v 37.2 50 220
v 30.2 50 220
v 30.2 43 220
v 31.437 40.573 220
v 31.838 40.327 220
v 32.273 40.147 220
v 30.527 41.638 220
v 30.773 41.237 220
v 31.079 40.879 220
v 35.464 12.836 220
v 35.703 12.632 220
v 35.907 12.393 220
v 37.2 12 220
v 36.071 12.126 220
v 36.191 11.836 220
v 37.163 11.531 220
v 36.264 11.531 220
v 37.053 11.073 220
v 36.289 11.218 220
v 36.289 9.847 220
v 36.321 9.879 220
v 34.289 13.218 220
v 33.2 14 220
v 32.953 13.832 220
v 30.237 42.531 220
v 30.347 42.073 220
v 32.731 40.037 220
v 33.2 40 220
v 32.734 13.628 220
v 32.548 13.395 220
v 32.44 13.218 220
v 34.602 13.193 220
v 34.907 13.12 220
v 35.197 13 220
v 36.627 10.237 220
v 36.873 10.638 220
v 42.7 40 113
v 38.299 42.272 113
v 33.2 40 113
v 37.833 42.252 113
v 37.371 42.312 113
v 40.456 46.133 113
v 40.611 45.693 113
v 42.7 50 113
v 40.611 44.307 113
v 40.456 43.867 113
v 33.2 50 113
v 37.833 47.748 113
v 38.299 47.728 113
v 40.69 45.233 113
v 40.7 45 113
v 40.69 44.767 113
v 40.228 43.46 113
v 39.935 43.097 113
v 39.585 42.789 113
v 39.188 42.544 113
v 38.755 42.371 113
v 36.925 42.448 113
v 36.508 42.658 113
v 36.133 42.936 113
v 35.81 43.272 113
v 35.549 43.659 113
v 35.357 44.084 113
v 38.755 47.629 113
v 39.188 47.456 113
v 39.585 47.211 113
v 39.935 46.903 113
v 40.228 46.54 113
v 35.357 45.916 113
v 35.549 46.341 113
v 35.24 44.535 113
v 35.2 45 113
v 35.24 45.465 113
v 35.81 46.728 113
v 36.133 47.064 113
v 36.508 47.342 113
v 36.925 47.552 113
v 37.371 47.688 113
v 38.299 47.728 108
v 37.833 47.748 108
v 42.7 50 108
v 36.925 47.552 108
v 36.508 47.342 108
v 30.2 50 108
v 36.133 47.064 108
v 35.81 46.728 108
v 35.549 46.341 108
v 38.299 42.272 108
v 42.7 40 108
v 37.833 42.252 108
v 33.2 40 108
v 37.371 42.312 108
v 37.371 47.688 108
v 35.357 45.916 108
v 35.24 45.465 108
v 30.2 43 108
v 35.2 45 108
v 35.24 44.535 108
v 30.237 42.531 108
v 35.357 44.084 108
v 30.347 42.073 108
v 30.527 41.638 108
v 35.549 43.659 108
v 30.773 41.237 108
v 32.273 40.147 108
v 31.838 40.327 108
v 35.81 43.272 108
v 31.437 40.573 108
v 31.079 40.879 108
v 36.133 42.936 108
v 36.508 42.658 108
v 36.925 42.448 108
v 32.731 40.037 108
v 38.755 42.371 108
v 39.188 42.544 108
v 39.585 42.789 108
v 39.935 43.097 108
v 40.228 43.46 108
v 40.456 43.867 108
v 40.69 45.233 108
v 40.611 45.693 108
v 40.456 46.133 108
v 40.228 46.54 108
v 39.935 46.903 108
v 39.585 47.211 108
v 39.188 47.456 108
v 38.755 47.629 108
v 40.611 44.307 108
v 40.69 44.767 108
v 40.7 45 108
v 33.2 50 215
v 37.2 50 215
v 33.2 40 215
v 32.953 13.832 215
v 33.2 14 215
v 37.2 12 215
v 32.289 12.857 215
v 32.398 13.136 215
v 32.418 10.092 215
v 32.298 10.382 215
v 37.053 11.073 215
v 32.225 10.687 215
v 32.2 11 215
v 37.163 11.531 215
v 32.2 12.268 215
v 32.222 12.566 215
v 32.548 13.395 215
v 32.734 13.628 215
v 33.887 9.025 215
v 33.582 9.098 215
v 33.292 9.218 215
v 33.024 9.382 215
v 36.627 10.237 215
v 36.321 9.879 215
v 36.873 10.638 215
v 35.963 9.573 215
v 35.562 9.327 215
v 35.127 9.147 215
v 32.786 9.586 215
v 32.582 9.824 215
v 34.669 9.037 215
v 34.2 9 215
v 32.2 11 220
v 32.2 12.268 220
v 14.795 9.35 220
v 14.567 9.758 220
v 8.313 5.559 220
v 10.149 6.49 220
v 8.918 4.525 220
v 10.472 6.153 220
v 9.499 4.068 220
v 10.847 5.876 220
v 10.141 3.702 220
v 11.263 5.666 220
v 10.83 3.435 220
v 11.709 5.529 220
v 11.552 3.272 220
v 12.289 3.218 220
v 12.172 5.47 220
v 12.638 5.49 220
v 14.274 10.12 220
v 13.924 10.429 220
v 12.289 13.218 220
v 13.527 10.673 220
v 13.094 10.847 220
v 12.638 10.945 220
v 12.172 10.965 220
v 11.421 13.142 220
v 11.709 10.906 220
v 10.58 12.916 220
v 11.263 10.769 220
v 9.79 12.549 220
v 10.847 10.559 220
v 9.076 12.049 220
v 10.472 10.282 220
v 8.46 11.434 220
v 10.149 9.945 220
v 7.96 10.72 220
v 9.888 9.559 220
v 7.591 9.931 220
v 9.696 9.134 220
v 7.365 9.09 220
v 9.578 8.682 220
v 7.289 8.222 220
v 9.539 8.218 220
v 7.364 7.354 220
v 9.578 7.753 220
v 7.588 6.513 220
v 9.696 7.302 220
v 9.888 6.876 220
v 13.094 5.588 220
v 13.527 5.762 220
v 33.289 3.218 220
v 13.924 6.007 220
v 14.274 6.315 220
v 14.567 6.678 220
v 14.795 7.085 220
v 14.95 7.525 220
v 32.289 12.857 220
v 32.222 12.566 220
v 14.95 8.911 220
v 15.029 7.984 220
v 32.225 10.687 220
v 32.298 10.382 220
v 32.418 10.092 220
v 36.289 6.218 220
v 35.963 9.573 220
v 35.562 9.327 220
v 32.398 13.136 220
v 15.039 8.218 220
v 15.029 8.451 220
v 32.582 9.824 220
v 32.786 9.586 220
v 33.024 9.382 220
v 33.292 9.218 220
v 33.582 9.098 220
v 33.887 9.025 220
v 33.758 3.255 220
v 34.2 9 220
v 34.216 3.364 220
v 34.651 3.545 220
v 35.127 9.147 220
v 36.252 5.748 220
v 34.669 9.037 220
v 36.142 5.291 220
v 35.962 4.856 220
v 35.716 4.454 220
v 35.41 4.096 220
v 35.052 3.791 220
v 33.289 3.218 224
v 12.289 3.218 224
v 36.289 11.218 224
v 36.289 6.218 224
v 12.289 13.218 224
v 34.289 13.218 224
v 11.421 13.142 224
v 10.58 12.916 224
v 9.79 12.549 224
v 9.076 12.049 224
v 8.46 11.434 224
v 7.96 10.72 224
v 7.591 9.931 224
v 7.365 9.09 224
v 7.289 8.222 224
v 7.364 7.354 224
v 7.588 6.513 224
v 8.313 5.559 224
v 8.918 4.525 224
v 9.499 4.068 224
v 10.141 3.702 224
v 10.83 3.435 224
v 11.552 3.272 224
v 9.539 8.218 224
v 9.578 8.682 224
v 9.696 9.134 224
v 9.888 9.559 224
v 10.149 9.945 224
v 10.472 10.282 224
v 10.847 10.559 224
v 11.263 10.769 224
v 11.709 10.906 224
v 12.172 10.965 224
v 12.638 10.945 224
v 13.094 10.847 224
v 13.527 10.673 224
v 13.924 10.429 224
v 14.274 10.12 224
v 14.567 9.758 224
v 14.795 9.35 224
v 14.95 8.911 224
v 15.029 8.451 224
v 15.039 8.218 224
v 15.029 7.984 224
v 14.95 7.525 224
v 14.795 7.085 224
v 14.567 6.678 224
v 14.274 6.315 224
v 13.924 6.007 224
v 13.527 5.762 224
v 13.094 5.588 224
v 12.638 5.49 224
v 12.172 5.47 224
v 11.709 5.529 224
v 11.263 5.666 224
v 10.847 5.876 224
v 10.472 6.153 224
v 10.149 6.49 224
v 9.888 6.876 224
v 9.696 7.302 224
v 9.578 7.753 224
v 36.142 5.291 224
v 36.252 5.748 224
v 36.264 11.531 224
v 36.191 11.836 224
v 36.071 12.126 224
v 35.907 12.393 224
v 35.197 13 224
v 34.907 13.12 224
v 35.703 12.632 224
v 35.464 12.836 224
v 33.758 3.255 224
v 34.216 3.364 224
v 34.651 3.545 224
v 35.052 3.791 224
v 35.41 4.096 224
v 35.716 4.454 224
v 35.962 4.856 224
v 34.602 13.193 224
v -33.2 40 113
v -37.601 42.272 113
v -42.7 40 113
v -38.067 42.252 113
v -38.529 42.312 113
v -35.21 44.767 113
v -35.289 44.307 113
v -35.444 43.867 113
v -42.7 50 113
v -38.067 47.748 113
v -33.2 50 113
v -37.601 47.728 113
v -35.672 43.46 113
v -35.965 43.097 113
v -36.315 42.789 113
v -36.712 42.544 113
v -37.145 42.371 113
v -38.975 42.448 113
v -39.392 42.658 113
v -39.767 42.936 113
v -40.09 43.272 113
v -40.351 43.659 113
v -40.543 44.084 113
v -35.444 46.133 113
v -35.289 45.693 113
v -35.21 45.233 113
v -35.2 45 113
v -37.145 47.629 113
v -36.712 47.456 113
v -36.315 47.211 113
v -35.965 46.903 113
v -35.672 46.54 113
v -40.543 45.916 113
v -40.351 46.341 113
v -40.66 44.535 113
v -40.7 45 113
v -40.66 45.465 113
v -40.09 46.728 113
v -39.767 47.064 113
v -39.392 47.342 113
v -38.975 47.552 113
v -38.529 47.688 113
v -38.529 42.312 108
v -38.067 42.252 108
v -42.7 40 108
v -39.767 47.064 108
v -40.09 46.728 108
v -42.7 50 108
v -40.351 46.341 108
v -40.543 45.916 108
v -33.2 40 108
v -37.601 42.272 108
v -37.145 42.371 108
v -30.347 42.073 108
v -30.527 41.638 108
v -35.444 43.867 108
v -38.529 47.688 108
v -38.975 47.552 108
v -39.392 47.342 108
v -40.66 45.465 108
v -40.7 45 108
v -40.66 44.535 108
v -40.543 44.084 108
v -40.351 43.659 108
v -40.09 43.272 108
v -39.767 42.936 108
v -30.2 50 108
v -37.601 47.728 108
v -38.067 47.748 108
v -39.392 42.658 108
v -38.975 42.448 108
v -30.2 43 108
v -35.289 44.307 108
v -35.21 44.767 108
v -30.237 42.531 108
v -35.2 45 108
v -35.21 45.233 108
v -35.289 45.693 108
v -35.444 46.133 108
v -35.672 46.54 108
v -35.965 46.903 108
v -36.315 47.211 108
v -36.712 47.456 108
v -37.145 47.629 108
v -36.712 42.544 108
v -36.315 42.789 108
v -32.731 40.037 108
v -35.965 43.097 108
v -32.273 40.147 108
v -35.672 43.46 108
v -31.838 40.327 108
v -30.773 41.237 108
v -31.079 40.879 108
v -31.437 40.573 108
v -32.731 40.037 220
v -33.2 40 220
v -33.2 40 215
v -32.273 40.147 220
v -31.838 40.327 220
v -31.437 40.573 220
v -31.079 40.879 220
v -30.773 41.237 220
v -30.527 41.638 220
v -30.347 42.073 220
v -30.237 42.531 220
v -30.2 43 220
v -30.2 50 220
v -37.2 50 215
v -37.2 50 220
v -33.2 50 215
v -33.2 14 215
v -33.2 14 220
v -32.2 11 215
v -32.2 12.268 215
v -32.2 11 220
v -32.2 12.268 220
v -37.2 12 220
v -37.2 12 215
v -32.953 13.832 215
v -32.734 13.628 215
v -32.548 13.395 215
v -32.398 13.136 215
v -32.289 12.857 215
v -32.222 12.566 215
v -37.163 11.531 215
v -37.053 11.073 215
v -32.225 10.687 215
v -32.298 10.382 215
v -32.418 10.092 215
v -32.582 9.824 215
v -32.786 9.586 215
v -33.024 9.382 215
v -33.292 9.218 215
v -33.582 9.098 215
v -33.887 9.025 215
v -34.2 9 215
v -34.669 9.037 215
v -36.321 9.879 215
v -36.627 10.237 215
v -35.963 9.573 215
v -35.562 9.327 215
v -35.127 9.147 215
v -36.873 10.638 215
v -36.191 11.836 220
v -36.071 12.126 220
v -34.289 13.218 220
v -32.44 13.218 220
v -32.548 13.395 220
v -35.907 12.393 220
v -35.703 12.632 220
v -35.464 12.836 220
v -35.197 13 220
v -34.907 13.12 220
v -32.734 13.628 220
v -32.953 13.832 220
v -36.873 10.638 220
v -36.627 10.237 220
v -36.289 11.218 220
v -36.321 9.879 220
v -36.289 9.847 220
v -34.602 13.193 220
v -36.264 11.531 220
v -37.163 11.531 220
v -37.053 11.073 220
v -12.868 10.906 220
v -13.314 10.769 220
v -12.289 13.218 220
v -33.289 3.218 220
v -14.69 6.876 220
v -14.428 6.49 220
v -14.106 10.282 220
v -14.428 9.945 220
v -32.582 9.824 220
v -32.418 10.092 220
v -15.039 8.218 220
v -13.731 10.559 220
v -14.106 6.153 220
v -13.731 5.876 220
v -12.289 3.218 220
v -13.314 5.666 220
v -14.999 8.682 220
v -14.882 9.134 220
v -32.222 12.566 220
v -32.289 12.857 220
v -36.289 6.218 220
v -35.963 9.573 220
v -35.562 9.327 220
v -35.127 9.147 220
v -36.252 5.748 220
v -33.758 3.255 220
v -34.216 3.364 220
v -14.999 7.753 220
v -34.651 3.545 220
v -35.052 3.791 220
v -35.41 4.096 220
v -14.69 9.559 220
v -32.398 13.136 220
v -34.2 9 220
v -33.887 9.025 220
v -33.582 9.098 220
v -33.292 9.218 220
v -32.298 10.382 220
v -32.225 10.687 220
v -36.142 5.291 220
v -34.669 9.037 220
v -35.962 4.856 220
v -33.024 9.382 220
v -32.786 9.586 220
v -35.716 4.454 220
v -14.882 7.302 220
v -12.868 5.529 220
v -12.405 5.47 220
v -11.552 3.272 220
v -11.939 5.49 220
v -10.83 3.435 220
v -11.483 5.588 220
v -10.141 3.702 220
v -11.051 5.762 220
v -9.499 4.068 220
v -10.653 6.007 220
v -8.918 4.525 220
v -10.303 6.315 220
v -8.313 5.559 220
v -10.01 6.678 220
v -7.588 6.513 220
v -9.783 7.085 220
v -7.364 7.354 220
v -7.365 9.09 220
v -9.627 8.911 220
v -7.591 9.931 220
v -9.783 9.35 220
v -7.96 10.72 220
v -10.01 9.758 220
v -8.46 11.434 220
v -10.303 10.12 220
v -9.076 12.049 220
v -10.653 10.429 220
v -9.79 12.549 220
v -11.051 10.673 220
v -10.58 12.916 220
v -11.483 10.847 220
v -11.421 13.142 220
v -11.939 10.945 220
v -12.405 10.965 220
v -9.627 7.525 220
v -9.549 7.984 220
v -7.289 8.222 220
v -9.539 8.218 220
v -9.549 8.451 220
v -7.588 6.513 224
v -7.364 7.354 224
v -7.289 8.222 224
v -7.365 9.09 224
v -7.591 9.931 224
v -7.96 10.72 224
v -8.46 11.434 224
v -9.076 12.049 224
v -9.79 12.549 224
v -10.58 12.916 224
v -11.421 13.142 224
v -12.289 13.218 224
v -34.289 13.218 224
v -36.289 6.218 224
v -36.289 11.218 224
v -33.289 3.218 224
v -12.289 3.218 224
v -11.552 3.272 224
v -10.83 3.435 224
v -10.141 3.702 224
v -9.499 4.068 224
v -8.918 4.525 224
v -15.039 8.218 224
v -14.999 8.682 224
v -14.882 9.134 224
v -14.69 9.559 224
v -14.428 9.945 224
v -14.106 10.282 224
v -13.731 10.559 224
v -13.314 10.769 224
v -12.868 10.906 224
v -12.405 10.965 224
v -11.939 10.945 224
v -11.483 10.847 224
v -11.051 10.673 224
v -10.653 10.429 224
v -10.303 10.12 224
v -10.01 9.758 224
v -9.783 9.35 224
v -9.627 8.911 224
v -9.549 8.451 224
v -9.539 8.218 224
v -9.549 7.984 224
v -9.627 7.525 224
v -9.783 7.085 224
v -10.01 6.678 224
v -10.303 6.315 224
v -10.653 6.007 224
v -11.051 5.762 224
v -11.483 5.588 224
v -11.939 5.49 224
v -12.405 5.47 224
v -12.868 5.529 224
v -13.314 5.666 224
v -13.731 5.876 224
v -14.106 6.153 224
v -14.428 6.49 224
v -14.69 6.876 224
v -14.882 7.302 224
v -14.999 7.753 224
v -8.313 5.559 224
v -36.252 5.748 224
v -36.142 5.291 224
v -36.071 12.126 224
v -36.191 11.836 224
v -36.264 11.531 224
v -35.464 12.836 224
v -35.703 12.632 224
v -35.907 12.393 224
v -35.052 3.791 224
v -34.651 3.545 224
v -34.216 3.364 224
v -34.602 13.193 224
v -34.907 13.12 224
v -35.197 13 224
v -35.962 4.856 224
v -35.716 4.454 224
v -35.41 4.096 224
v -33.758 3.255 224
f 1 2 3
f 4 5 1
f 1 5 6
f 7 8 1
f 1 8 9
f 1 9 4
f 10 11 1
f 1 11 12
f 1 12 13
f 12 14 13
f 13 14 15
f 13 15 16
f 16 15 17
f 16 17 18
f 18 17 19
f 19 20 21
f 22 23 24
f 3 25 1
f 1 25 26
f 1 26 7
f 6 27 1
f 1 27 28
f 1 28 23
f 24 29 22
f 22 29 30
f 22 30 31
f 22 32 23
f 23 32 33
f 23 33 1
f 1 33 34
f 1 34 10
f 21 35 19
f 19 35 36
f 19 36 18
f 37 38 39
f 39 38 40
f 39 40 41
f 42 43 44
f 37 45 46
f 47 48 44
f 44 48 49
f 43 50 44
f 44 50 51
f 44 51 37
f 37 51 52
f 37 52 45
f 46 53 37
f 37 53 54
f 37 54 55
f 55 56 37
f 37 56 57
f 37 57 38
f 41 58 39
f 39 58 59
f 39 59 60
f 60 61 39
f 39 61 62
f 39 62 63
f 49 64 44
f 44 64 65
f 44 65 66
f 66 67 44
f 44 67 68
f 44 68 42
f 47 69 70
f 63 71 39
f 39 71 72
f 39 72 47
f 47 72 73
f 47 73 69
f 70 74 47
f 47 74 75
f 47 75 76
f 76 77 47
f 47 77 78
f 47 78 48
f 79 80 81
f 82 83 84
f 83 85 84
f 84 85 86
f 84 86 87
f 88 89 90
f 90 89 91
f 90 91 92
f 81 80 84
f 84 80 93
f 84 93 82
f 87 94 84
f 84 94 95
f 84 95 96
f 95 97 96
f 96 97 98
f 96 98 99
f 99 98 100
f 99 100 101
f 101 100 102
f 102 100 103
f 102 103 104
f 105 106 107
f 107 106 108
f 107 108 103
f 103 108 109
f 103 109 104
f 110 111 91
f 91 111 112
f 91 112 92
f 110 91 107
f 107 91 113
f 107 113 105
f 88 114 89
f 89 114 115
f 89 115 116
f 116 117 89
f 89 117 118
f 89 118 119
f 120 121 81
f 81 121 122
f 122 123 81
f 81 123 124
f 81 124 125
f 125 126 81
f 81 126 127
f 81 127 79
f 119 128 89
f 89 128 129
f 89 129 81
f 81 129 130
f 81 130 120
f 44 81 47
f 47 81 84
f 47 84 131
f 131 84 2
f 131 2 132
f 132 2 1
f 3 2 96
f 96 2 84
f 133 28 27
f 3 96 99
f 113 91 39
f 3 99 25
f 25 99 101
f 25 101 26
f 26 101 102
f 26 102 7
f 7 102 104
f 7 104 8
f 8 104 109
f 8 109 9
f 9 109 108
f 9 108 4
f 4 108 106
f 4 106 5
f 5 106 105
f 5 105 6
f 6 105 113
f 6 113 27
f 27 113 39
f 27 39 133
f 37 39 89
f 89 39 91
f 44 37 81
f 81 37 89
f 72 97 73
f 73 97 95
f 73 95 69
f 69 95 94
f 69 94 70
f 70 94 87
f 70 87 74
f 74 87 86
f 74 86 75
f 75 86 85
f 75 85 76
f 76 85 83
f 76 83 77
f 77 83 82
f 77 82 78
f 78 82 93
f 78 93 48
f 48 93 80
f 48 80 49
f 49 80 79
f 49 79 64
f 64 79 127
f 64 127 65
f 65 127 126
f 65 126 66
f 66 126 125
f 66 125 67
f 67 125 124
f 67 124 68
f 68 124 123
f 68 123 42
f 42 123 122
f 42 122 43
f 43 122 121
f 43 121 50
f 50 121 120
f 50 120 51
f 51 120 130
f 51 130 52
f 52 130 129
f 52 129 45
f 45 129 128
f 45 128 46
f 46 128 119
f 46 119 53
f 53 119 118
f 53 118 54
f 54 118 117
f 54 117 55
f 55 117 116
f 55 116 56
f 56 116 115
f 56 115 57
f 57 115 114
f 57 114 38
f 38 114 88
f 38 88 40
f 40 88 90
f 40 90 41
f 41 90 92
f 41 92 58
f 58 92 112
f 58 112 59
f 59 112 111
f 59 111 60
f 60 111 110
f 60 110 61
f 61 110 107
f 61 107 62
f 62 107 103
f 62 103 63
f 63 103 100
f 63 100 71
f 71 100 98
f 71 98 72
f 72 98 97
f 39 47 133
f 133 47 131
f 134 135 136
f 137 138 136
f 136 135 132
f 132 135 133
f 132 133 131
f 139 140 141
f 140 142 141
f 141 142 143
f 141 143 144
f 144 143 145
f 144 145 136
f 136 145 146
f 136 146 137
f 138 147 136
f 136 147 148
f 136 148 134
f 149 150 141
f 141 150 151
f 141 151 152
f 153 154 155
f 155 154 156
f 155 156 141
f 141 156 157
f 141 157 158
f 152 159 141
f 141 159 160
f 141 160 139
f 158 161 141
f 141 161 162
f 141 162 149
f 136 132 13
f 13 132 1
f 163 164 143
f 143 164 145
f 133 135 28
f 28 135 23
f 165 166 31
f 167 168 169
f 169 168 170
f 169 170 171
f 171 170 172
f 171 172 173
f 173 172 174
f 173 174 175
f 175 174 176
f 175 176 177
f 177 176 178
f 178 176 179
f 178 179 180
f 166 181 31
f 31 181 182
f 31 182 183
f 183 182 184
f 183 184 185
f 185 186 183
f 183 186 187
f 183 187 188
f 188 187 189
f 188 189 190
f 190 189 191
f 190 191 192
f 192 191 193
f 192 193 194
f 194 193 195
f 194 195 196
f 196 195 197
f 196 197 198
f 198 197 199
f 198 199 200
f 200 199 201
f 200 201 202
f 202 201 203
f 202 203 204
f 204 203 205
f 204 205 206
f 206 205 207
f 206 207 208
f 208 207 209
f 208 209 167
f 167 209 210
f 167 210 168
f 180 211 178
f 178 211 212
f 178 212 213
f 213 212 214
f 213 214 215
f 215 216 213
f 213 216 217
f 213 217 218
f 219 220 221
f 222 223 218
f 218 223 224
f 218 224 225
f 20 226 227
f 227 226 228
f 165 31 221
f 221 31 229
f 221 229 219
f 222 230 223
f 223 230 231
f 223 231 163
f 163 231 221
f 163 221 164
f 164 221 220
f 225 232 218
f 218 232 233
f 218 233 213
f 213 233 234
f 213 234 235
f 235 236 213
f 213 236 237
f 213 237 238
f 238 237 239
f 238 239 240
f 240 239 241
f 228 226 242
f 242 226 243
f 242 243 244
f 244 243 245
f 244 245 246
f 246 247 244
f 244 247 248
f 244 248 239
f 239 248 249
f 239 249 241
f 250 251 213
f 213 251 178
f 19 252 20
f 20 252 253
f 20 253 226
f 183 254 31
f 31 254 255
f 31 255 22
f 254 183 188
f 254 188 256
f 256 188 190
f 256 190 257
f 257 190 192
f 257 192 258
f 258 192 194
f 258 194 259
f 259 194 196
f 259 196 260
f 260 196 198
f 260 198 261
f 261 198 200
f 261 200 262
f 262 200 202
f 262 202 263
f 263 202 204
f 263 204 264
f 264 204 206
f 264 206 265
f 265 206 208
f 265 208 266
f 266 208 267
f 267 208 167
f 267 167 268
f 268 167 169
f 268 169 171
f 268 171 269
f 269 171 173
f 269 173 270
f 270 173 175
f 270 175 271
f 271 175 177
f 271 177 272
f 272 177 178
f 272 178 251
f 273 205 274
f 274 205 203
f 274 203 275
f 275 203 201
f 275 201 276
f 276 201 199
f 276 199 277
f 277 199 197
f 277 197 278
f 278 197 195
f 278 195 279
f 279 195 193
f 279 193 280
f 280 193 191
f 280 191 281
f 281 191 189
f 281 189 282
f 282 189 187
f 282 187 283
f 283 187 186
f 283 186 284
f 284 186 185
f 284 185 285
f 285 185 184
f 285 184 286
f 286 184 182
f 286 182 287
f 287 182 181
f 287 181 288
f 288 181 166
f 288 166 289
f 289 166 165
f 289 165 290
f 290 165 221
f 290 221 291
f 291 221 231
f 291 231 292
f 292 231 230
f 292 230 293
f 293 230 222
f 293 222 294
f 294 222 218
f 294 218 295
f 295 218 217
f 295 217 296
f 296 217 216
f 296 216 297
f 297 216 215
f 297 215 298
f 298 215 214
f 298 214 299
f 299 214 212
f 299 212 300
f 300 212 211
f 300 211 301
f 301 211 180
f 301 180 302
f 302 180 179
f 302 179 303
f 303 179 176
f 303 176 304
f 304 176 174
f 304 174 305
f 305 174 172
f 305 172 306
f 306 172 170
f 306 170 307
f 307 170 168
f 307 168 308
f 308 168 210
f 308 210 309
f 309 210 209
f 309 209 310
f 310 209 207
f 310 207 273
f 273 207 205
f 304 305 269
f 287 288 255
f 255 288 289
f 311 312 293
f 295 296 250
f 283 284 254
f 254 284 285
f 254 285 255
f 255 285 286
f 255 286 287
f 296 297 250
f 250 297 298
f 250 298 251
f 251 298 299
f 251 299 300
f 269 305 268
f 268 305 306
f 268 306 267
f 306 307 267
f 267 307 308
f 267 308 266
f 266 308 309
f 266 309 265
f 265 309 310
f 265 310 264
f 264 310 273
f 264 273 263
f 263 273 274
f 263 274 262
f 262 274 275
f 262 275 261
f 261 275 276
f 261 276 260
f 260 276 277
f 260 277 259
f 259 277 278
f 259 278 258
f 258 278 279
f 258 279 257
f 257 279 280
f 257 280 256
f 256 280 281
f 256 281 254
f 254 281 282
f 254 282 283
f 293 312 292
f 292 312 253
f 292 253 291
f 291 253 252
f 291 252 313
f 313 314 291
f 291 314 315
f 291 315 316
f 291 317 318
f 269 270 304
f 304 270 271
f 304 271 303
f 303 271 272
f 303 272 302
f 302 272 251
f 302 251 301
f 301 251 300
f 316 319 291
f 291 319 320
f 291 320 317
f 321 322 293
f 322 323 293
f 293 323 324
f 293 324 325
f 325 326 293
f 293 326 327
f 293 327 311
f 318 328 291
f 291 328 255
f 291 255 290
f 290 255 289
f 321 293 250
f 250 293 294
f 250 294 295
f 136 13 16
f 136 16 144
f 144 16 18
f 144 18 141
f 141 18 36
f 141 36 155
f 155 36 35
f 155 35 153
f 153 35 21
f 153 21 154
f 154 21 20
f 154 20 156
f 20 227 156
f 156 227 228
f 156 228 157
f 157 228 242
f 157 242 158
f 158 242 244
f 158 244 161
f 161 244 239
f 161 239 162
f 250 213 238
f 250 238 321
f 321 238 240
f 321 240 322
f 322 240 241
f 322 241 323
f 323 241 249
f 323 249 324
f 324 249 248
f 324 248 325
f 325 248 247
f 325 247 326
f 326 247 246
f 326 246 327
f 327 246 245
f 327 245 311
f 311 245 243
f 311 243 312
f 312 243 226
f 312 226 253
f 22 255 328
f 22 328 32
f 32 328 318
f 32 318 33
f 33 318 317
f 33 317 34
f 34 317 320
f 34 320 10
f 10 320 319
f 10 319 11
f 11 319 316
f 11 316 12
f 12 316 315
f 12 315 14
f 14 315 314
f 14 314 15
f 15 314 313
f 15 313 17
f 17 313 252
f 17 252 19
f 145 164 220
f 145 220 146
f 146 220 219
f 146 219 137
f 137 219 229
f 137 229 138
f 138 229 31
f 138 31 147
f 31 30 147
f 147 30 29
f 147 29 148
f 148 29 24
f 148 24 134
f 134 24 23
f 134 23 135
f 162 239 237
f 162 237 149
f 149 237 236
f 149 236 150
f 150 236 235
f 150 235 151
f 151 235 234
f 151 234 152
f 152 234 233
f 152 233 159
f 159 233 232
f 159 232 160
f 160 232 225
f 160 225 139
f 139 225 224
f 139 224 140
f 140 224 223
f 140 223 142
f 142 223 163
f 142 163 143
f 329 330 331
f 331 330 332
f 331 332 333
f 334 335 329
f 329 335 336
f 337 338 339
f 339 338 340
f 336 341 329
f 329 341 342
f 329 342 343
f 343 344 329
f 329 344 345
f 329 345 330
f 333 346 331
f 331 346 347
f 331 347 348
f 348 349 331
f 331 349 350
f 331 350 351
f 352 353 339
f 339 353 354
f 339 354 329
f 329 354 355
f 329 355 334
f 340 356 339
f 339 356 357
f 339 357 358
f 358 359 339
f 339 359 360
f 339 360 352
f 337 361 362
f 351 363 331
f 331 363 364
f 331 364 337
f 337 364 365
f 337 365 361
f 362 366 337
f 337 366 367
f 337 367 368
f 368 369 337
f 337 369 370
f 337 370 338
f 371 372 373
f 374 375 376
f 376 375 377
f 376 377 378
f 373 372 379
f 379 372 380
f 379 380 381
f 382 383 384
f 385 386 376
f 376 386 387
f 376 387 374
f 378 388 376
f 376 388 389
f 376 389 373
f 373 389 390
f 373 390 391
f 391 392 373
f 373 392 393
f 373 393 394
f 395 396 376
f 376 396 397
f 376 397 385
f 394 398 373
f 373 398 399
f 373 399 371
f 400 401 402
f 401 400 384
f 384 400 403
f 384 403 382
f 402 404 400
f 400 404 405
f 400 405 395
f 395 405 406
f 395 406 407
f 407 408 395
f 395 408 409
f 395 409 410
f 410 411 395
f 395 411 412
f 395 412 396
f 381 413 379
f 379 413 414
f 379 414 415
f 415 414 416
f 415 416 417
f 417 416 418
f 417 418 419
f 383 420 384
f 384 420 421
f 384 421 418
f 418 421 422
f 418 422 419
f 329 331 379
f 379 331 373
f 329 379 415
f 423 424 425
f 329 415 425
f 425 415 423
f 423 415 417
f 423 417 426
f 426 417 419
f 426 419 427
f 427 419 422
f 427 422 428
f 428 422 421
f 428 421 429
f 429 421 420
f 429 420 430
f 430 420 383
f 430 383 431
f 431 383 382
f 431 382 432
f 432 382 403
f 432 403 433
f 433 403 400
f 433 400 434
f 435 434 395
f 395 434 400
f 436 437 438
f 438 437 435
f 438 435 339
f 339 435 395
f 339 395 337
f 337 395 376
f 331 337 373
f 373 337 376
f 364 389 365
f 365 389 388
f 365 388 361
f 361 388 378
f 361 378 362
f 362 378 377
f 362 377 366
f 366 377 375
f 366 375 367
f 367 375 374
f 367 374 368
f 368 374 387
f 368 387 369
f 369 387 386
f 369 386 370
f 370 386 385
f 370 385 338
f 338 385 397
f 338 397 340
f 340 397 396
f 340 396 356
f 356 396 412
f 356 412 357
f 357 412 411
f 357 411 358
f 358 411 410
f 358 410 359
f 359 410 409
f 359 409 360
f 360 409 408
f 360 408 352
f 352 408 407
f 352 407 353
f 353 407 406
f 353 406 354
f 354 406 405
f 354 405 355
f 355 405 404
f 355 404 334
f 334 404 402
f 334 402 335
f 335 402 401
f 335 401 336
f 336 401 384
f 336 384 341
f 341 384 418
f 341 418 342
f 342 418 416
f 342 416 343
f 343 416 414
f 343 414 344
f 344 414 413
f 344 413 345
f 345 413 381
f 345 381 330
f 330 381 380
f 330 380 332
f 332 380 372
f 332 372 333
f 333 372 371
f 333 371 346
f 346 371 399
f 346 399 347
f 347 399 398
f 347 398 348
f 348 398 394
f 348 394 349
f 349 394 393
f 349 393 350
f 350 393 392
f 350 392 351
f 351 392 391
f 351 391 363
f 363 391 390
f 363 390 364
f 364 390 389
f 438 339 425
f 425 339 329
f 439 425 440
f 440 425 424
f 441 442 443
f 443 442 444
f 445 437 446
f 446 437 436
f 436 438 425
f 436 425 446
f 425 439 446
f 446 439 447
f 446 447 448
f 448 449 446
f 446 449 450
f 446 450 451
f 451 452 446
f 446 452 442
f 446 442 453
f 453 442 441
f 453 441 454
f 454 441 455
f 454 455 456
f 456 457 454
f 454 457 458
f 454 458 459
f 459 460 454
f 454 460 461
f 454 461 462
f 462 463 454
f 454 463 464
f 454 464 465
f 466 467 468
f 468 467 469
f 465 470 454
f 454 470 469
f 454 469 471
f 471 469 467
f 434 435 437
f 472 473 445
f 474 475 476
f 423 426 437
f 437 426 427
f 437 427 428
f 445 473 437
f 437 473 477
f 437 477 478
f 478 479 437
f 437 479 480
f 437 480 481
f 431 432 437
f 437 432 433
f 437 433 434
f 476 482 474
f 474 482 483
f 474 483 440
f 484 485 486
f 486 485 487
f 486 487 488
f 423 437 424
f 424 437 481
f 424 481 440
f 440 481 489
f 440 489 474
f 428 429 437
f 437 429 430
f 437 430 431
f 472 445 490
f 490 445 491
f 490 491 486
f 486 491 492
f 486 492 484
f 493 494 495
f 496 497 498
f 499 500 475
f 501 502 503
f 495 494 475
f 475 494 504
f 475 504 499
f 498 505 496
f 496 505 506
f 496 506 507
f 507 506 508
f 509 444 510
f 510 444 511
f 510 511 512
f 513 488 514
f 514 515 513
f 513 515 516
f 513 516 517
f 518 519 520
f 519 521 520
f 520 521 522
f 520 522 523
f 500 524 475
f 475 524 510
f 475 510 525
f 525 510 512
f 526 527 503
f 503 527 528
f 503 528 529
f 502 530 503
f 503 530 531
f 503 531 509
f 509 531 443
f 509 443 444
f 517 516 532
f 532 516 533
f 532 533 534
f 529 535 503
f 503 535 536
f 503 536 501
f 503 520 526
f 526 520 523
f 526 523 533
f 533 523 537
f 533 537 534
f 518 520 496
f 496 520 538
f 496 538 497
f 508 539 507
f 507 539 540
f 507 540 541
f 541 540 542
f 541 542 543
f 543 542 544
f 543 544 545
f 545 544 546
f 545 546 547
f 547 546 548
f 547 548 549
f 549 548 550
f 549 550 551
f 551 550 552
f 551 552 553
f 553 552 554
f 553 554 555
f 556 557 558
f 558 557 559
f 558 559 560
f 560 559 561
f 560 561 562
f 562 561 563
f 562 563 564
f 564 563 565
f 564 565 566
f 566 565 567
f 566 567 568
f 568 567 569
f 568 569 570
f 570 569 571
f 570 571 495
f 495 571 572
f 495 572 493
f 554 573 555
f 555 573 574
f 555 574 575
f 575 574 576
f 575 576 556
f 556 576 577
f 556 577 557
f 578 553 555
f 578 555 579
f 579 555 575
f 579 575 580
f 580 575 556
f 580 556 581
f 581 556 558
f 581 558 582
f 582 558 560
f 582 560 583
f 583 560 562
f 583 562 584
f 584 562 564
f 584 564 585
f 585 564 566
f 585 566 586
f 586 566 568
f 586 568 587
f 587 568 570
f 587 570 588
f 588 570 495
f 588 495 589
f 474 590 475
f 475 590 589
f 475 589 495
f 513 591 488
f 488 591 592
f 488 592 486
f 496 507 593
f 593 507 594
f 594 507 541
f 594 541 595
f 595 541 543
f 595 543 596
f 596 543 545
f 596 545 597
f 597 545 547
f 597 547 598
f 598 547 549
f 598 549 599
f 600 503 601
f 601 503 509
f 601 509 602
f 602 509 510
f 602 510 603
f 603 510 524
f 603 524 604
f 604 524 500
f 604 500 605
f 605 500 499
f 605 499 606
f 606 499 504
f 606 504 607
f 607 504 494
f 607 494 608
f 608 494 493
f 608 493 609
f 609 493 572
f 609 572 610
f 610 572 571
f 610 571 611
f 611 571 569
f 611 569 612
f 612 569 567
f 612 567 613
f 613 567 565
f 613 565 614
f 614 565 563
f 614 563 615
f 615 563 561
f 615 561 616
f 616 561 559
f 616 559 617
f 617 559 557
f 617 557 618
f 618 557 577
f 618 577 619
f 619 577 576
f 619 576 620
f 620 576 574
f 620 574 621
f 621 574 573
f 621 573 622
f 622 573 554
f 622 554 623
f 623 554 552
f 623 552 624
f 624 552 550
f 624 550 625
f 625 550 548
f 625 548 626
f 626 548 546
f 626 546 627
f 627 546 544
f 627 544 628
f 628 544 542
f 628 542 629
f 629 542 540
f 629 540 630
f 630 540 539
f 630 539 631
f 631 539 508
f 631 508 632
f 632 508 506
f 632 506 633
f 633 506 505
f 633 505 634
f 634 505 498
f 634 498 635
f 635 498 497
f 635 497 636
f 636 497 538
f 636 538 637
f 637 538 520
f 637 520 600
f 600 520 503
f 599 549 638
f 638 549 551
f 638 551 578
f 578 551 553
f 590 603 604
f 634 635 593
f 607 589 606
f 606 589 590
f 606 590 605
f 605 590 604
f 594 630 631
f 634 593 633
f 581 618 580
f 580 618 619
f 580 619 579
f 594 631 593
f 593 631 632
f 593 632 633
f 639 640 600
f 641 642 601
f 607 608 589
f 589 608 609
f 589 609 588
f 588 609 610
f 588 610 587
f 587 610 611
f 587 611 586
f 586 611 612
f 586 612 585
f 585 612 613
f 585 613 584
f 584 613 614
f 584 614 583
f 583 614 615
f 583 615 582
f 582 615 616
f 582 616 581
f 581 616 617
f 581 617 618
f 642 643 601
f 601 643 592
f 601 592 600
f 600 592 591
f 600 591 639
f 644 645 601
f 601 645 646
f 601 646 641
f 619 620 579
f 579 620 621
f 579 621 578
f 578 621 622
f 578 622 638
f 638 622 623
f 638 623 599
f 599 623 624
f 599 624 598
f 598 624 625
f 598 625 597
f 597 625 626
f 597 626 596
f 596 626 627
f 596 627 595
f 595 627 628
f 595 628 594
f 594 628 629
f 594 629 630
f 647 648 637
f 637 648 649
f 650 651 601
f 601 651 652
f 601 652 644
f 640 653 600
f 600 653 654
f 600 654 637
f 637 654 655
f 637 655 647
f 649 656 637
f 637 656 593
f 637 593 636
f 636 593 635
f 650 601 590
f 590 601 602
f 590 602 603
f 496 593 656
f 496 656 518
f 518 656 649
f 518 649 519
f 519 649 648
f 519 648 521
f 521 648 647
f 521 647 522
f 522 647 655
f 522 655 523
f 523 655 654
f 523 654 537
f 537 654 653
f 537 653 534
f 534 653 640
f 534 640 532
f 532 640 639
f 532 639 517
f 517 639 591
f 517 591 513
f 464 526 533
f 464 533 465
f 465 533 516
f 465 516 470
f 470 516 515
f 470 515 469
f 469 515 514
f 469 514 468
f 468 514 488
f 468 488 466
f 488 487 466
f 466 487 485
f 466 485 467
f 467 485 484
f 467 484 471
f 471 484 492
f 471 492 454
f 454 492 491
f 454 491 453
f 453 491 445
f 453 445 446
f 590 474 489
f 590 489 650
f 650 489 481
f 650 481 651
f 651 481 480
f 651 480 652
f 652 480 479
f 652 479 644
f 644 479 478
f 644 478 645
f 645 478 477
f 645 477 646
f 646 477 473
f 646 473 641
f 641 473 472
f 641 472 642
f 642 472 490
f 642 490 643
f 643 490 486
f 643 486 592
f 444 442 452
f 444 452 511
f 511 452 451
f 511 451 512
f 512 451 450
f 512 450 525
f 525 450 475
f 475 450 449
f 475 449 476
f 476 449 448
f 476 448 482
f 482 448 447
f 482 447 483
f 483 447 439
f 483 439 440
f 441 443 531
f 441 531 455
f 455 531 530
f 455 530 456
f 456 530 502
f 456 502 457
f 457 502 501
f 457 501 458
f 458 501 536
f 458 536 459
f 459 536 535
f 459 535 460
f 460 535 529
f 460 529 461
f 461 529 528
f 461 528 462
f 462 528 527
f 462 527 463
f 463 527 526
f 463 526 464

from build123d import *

# Parameters (mm, degrees)
SKETCH1_R               = 2.75
BOSS_EXTRUDE1_DEPTH     = 5
BOSS_EXTRUDE1_2_DEPTH   = 5
BOSS_EXTRUDE2_DEPTH     = 5
BOSS_EXTRUDE2_2_DEPTH   = 5
BOSS_EXTRUDE3_DEPTH     = 102
SKETCH4_W               = 5.5
SKETCH4_H               = 10
CUT_EXTRUDE1_DEPTH      = 5
BOSS_EXTRUDE4_OUTLINE_R = 2.75
BOSS_EXTRUDE4_DEPTH     = 4
FILLET1_R               = 3
FILLET2_R               = 3
FILLET3_R               = 2
FILLET4_R               = 2
FILLET5_R               = 2
FILLET6_R               = 2
FILLET7_R               = 2
FILLET8_R               = 2
CUT_EXTRUDE2_DEPTH      = 5


# Read off the part's stored shape, not the designer's step: Boss-Extrude4
# Some blends are built 0.0001 mm under size
with BuildPart() as part:
    # Sketch1 → Boss-Extrude1 (new body)
    with BuildSketch(Plane.XY.offset(108)):
        with BuildLine():
            Line((30.2, 50), (30.2, 43))
            ThreePointArc((30.2, 43), (31.078679656, 40.878679656), (33.2, 40))
            Line((33.2, 40), (33.2, 14))
            Line((33.2, 14), (32.2, 14))
            Line((32.2, 14), (32.2, 9))
            Line((32.2, 9), (37.2, 9))
            Line((37.2, 9), (37.2, 40))
            Line((37.2, 40), (42.7, 40))
            Line((42.7, 40), (42.7, 50))
            Line((42.7, 50), (30.2, 50))
        make_face()
        with Locations((37.95, 45)):
            Circle(SKETCH1_R, mode=Mode.SUBTRACT)
    extrude(amount=BOSS_EXTRUDE1_DEPTH)



with BuildPart() as body_2:
    # Sketch1 → Boss-Extrude1 2 (new body)
    with BuildSketch(Plane.XY.offset(108)):
        with BuildLine():
            Line((-37.2, 40), (-37.2, 9))
            Line((-37.2, 9), (-32.2, 9))
            Line((-32.2, 9), (-32.2, 14))
            Line((-32.2, 14), (-33.2, 14))
            Line((-33.2, 14), (-33.2, 40))
            ThreePointArc((-33.2, 40), (-31.078679656, 40.878679656), (-30.2, 43))
            Line((-30.2, 43), (-30.2, 50))
            Line((-30.2, 50), (-42.7, 50))
            Line((-42.7, 50), (-42.7, 40))
            Line((-42.7, 40), (-37.2, 40))
        make_face()
        with Locations((-37.95, 45)):
            Circle(SKETCH1_R, mode=Mode.SUBTRACT)
    extrude(amount=BOSS_EXTRUDE1_2_DEPTH)


with BuildPart() as body_3:
    # Sketch2 → Boss-Extrude2 (new body)
    with BuildSketch(Plane.XY.offset(220)):
        with BuildLine():
            Line((42.7, 50), (30.2, 50))
            Line((30.2, 50), (30.2, 43))
            ThreePointArc((30.2, 43), (31.078679656, 40.878679656), (33.2, 40))
            Line((33.2, 40), (33.2, 14))
            Line((33.2, 14), (32.2, 14))
            Line((32.2, 14), (32.2, 9))
            Line((32.2, 9), (37.2, 9))
            Line((37.2, 9), (37.2, 40))
            Line((37.2, 40), (42.7, 40))
            Line((42.7, 40), (42.7, 50))
        make_face()
    extrude(amount=-BOSS_EXTRUDE2_DEPTH)


with BuildPart() as body_4:
    # Sketch2 → Boss-Extrude2 2 (new body)
    with BuildSketch(Plane.XY.offset(220)):
        with BuildLine():
            Line((-42.7, 40), (-37.2, 40))
            Line((-37.2, 40), (-37.2, 9))
            Line((-37.2, 9), (-32.2, 9))
            Line((-32.2, 9), (-32.2, 14))
            Line((-32.2, 14), (-33.2, 14))
            Line((-33.2, 14), (-33.2, 40))
            ThreePointArc((-33.2, 40), (-31.078679656, 40.878679656), (-30.2, 43))
            Line((-30.2, 43), (-30.2, 50))
            Line((-30.2, 50), (-42.7, 50))
            Line((-42.7, 50), (-42.7, 40))
        make_face()
    extrude(amount=-BOSS_EXTRUDE2_2_DEPTH)


with BuildPart() as part_1:
    add(part.part)

    add(body_2.part)  # Boss-Extrude3 merges body 2

    add(body_3.part)  # Boss-Extrude3 merges body 3

    add(body_4.part)  # Boss-Extrude3 merges body 4
    # Sketch3 → Boss-Extrude3 (add)
    with BuildSketch(Plane.XY.offset(113)):
        with BuildLine():
            ThreePointArc((30.2, 43), (31.078679656, 40.878679656), (33.2, 40))
            Line((33.2, 40), (33.2, 50))
            Line((33.2, 50), (30.2, 50))
            Line((30.2, 50), (30.2, 43))
        make_face()
        with BuildLine():
            Line((-33.2, 50), (-33.2, 40))
            ThreePointArc((-33.2, 40), (-31.078679656, 40.878679656), (-30.2, 43))
            Line((-30.2, 43), (-30.2, 50))
            Line((-30.2, 50), (-33.2, 50))
        make_face()
    extrude(amount=BOSS_EXTRUDE3_DEPTH)

    # Sketch4 → Cut-Extrude1 (cut)
    with BuildSketch(Plane.XY.offset(220)):
        with Locations((-39.95, 45)):
            Rectangle(SKETCH4_W, SKETCH4_H)
        with Locations((39.95, 45)):
            Rectangle(SKETCH4_W, SKETCH4_H)
    extrude(amount=-CUT_EXTRUDE1_DEPTH, mode=Mode.SUBTRACT)

    # Boss-Extrude4 outline → Boss-Extrude4 (add)
    # profile 1 of 2: a face of its own
    with BuildSketch(Plane.XY.offset(220)):
        with BuildLine():
            ThreePointArc((-7.588350384, 6.512828759), (-8.194576251, 11.087838135), (-12.288728005, 13.217660193))
            Line((-12.288728005, 13.217660193), (-36.288728005, 13.217660193))
            Line((-36.288728005, 13.217660193), (-36.288728005, 3.217660193))
            Line((-36.288728005, 3.217660193), (-12.288728005, 3.217660193))
            ThreePointArc((-12.288728005, 3.217660193), (-10.480879624, 3.555934737), (-8.917650877, 4.524986502))
            ThreePointArc((-8.917650877, 4.524986502), (-8.312634878, 5.558785963), (-7.588350384, 6.512828759))
        make_face()
        with Locations((-12.288728005, 8.217660193)):
            Circle(BOSS_EXTRUDE4_OUTLINE_R, mode=Mode.SUBTRACT)
    # profile 2 of 2: a face of its own
    with BuildSketch(Plane.XY.offset(220)):
        with BuildLine():
            Line((36.288728005, 3.217660193), (36.288728005, 13.217660193))
            Line((36.288728005, 13.217660193), (12.288728005, 13.217660193))
            ThreePointArc((12.288728005, 13.217660193), (8.194576251, 11.087838135), (7.588350384, 6.512828759))
            ThreePointArc((7.588350384, 6.512828759), (8.312634878, 5.558785963), (8.917650877, 4.524986502))
            ThreePointArc((8.917650877, 4.524986502), (10.480879624, 3.555934737), (12.288728005, 3.217660193))
            Line((12.288728005, 3.217660193), (36.288728005, 3.217660193))
        make_face()
        with Locations((12.288728005, 8.217660193)):
            Circle(BOSS_EXTRUDE4_OUTLINE_R, mode=Mode.SUBTRACT)
    extrude(amount=BOSS_EXTRUDE4_DEPTH)

    # Fillet1
    # the kernel refuses this fillet: 3 mm, written as the material it takes off along each edge
    with BuildSketch(Plane(origin=(-37.2, 9, 220), x_dir=(0, 1, 0), z_dir=(0, 0, -1))) as fillet1_piece_1:
        with BuildLine():
            CenterArc((FILLET1_R, FILLET1_R), FILLET1_R, 180, 90)
            Line((0, FILLET1_R), (0, 0))
            Line((0, 0), (FILLET1_R, 0))
        make_face()
    extrude(amount=12.5, mode=Mode.SUBTRACT)
    with BuildSketch(Plane(origin=(-36.288728005, 3.217660193, 212.5), x_dir=(0, 1, 0), z_dir=(0, 0, 1))) as fillet1_piece_2:
        with BuildLine():
            CenterArc((FILLET1_R, -FILLET1_R), FILLET1_R, 90, 90)
            Line((0, -FILLET1_R), (0, 0))
            Line((0, 0), (FILLET1_R, 0))
        make_face()
    extrude(amount=19, mode=Mode.SUBTRACT)

    # Fillet2
    # the kernel refuses this fillet: 3 mm, written as the material it takes off along each edge
    with BuildSketch(Plane(origin=(37.2, 9, 220), x_dir=(0, 1, 0), z_dir=(0, 0, -1))) as fillet2_piece_1:
        with BuildLine():
            CenterArc((FILLET2_R, -FILLET2_R), FILLET2_R, 90, 90)
            Line((0, -FILLET2_R), (0, 0))
            Line((0, 0), (FILLET2_R, 0))
        make_face()
    extrude(amount=12.5, mode=Mode.SUBTRACT)
    with BuildSketch(Plane(origin=(36.288728005, 3.217660193, 212.5), x_dir=(-1, 0, 0), z_dir=(0, 0, 1))) as fillet2_piece_2:
        with BuildLine():
            CenterArc((FILLET2_R, -FILLET2_R), FILLET2_R, 90, 90)
            Line((0, -FILLET2_R), (0, 0))
            Line((0, 0), (FILLET2_R, 0))
        make_face()
    extrude(amount=19, mode=Mode.SUBTRACT)

    # Fillet3
    fillet3_edges = [part_1.edges().sort_by_distance(p)[0] for p in [
        (36.288728005, 13.217660193, 222),
    ]]
    fillet(fillet3_edges, radius=FILLET3_R)

    # Fillet4
    fillet4_edges = [part_1.edges().sort_by_distance(p)[0] for p in [
        (-36.288728005, 13.217660193, 222),
    ]]
    fillet(fillet4_edges, radius=FILLET4_R)

    # Fillet5
    # the kernel refuses this fillet: 2 mm, written as the material it takes off along each edge
    with BuildSketch(Plane(origin=(-32.2, 14, 220), x_dir=(0, -1, 0), z_dir=(0, 0, -1))) as fillet5_piece_1:
        with BuildLine():
            CenterArc((1.732050808, 2), FILLET5_R, 210, 60)
            Line((0, 1), (-0.034641016, 0.98))
            ThreePointArc((-0.034641016, 0.98), (-0.04, 0.5), (-0.04, 0))
            Line((-0.04, 0), (0, -0.04))
            Line((0, -0.04), (1.732050808, -0.04))
            Line((1.732050808, -0.04), (1.732050808, 0))
        make_face()
    extrude(amount=9.330127019, mode=Mode.SUBTRACT)

    # Fillet6
    # the kernel refuses this fillet: 2 mm, written as the material it takes off along each edge
    with BuildSketch(Plane(origin=(32.2, 14, 220), x_dir=(1, 0, 0), z_dir=(0, 0, -1))) as fillet6_piece_1:
        with BuildLine():
            CenterArc((2, 1.732050808), FILLET6_R, 180, 60)
            Line((0, 1.732050808), (-0.04, 1.732050808))
            Line((-0.04, 1.732050808), (-0.04, 0))
            Line((-0.04, 0), (0, -0.04))
            ThreePointArc((0, -0.04), (0.5, -0.04), (0.98, -0.034641016))
            Line((0.98, -0.034641016), (1, 0))
        make_face()
    extrude(amount=9.330127019, mode=Mode.SUBTRACT)

    # Fillet7
    fillet7_edges = [part_1.edges().sort_by_distance(p)[0] for p in [
        (32.2, 9, 217.5),
    ]]
    fillet(fillet7_edges, radius=FILLET7_R - 0.0001)  # a hair under: the kernel refuses the full size

    # Fillet8
    fillet8_edges = [part_1.edges().sort_by_distance(p)[0] for p in [
        (-32.2, 9, 217.5),
    ]]
    fillet(fillet8_edges, radius=FILLET8_R - 0.0001)  # a hair under: the kernel refuses the full size

    # Sketch7 → Cut-Extrude2 (cut)
    with BuildSketch(Plane.XY.offset(113)):
        Polygon((-33.2, 40), (-37.2, 40), (-37.2, 9), (-32.2, 9), (-32.2, 14), (-33.2, 14), align=None)
        Polygon((32.2, 9), (37.2, 9), (37.2, 40), (33.2, 40), (33.2, 14), (32.2, 14), align=None)
    extrude(amount=-CUT_EXTRUDE2_DEPTH, mode=Mode.SUBTRACT)


solid = part_1.part
